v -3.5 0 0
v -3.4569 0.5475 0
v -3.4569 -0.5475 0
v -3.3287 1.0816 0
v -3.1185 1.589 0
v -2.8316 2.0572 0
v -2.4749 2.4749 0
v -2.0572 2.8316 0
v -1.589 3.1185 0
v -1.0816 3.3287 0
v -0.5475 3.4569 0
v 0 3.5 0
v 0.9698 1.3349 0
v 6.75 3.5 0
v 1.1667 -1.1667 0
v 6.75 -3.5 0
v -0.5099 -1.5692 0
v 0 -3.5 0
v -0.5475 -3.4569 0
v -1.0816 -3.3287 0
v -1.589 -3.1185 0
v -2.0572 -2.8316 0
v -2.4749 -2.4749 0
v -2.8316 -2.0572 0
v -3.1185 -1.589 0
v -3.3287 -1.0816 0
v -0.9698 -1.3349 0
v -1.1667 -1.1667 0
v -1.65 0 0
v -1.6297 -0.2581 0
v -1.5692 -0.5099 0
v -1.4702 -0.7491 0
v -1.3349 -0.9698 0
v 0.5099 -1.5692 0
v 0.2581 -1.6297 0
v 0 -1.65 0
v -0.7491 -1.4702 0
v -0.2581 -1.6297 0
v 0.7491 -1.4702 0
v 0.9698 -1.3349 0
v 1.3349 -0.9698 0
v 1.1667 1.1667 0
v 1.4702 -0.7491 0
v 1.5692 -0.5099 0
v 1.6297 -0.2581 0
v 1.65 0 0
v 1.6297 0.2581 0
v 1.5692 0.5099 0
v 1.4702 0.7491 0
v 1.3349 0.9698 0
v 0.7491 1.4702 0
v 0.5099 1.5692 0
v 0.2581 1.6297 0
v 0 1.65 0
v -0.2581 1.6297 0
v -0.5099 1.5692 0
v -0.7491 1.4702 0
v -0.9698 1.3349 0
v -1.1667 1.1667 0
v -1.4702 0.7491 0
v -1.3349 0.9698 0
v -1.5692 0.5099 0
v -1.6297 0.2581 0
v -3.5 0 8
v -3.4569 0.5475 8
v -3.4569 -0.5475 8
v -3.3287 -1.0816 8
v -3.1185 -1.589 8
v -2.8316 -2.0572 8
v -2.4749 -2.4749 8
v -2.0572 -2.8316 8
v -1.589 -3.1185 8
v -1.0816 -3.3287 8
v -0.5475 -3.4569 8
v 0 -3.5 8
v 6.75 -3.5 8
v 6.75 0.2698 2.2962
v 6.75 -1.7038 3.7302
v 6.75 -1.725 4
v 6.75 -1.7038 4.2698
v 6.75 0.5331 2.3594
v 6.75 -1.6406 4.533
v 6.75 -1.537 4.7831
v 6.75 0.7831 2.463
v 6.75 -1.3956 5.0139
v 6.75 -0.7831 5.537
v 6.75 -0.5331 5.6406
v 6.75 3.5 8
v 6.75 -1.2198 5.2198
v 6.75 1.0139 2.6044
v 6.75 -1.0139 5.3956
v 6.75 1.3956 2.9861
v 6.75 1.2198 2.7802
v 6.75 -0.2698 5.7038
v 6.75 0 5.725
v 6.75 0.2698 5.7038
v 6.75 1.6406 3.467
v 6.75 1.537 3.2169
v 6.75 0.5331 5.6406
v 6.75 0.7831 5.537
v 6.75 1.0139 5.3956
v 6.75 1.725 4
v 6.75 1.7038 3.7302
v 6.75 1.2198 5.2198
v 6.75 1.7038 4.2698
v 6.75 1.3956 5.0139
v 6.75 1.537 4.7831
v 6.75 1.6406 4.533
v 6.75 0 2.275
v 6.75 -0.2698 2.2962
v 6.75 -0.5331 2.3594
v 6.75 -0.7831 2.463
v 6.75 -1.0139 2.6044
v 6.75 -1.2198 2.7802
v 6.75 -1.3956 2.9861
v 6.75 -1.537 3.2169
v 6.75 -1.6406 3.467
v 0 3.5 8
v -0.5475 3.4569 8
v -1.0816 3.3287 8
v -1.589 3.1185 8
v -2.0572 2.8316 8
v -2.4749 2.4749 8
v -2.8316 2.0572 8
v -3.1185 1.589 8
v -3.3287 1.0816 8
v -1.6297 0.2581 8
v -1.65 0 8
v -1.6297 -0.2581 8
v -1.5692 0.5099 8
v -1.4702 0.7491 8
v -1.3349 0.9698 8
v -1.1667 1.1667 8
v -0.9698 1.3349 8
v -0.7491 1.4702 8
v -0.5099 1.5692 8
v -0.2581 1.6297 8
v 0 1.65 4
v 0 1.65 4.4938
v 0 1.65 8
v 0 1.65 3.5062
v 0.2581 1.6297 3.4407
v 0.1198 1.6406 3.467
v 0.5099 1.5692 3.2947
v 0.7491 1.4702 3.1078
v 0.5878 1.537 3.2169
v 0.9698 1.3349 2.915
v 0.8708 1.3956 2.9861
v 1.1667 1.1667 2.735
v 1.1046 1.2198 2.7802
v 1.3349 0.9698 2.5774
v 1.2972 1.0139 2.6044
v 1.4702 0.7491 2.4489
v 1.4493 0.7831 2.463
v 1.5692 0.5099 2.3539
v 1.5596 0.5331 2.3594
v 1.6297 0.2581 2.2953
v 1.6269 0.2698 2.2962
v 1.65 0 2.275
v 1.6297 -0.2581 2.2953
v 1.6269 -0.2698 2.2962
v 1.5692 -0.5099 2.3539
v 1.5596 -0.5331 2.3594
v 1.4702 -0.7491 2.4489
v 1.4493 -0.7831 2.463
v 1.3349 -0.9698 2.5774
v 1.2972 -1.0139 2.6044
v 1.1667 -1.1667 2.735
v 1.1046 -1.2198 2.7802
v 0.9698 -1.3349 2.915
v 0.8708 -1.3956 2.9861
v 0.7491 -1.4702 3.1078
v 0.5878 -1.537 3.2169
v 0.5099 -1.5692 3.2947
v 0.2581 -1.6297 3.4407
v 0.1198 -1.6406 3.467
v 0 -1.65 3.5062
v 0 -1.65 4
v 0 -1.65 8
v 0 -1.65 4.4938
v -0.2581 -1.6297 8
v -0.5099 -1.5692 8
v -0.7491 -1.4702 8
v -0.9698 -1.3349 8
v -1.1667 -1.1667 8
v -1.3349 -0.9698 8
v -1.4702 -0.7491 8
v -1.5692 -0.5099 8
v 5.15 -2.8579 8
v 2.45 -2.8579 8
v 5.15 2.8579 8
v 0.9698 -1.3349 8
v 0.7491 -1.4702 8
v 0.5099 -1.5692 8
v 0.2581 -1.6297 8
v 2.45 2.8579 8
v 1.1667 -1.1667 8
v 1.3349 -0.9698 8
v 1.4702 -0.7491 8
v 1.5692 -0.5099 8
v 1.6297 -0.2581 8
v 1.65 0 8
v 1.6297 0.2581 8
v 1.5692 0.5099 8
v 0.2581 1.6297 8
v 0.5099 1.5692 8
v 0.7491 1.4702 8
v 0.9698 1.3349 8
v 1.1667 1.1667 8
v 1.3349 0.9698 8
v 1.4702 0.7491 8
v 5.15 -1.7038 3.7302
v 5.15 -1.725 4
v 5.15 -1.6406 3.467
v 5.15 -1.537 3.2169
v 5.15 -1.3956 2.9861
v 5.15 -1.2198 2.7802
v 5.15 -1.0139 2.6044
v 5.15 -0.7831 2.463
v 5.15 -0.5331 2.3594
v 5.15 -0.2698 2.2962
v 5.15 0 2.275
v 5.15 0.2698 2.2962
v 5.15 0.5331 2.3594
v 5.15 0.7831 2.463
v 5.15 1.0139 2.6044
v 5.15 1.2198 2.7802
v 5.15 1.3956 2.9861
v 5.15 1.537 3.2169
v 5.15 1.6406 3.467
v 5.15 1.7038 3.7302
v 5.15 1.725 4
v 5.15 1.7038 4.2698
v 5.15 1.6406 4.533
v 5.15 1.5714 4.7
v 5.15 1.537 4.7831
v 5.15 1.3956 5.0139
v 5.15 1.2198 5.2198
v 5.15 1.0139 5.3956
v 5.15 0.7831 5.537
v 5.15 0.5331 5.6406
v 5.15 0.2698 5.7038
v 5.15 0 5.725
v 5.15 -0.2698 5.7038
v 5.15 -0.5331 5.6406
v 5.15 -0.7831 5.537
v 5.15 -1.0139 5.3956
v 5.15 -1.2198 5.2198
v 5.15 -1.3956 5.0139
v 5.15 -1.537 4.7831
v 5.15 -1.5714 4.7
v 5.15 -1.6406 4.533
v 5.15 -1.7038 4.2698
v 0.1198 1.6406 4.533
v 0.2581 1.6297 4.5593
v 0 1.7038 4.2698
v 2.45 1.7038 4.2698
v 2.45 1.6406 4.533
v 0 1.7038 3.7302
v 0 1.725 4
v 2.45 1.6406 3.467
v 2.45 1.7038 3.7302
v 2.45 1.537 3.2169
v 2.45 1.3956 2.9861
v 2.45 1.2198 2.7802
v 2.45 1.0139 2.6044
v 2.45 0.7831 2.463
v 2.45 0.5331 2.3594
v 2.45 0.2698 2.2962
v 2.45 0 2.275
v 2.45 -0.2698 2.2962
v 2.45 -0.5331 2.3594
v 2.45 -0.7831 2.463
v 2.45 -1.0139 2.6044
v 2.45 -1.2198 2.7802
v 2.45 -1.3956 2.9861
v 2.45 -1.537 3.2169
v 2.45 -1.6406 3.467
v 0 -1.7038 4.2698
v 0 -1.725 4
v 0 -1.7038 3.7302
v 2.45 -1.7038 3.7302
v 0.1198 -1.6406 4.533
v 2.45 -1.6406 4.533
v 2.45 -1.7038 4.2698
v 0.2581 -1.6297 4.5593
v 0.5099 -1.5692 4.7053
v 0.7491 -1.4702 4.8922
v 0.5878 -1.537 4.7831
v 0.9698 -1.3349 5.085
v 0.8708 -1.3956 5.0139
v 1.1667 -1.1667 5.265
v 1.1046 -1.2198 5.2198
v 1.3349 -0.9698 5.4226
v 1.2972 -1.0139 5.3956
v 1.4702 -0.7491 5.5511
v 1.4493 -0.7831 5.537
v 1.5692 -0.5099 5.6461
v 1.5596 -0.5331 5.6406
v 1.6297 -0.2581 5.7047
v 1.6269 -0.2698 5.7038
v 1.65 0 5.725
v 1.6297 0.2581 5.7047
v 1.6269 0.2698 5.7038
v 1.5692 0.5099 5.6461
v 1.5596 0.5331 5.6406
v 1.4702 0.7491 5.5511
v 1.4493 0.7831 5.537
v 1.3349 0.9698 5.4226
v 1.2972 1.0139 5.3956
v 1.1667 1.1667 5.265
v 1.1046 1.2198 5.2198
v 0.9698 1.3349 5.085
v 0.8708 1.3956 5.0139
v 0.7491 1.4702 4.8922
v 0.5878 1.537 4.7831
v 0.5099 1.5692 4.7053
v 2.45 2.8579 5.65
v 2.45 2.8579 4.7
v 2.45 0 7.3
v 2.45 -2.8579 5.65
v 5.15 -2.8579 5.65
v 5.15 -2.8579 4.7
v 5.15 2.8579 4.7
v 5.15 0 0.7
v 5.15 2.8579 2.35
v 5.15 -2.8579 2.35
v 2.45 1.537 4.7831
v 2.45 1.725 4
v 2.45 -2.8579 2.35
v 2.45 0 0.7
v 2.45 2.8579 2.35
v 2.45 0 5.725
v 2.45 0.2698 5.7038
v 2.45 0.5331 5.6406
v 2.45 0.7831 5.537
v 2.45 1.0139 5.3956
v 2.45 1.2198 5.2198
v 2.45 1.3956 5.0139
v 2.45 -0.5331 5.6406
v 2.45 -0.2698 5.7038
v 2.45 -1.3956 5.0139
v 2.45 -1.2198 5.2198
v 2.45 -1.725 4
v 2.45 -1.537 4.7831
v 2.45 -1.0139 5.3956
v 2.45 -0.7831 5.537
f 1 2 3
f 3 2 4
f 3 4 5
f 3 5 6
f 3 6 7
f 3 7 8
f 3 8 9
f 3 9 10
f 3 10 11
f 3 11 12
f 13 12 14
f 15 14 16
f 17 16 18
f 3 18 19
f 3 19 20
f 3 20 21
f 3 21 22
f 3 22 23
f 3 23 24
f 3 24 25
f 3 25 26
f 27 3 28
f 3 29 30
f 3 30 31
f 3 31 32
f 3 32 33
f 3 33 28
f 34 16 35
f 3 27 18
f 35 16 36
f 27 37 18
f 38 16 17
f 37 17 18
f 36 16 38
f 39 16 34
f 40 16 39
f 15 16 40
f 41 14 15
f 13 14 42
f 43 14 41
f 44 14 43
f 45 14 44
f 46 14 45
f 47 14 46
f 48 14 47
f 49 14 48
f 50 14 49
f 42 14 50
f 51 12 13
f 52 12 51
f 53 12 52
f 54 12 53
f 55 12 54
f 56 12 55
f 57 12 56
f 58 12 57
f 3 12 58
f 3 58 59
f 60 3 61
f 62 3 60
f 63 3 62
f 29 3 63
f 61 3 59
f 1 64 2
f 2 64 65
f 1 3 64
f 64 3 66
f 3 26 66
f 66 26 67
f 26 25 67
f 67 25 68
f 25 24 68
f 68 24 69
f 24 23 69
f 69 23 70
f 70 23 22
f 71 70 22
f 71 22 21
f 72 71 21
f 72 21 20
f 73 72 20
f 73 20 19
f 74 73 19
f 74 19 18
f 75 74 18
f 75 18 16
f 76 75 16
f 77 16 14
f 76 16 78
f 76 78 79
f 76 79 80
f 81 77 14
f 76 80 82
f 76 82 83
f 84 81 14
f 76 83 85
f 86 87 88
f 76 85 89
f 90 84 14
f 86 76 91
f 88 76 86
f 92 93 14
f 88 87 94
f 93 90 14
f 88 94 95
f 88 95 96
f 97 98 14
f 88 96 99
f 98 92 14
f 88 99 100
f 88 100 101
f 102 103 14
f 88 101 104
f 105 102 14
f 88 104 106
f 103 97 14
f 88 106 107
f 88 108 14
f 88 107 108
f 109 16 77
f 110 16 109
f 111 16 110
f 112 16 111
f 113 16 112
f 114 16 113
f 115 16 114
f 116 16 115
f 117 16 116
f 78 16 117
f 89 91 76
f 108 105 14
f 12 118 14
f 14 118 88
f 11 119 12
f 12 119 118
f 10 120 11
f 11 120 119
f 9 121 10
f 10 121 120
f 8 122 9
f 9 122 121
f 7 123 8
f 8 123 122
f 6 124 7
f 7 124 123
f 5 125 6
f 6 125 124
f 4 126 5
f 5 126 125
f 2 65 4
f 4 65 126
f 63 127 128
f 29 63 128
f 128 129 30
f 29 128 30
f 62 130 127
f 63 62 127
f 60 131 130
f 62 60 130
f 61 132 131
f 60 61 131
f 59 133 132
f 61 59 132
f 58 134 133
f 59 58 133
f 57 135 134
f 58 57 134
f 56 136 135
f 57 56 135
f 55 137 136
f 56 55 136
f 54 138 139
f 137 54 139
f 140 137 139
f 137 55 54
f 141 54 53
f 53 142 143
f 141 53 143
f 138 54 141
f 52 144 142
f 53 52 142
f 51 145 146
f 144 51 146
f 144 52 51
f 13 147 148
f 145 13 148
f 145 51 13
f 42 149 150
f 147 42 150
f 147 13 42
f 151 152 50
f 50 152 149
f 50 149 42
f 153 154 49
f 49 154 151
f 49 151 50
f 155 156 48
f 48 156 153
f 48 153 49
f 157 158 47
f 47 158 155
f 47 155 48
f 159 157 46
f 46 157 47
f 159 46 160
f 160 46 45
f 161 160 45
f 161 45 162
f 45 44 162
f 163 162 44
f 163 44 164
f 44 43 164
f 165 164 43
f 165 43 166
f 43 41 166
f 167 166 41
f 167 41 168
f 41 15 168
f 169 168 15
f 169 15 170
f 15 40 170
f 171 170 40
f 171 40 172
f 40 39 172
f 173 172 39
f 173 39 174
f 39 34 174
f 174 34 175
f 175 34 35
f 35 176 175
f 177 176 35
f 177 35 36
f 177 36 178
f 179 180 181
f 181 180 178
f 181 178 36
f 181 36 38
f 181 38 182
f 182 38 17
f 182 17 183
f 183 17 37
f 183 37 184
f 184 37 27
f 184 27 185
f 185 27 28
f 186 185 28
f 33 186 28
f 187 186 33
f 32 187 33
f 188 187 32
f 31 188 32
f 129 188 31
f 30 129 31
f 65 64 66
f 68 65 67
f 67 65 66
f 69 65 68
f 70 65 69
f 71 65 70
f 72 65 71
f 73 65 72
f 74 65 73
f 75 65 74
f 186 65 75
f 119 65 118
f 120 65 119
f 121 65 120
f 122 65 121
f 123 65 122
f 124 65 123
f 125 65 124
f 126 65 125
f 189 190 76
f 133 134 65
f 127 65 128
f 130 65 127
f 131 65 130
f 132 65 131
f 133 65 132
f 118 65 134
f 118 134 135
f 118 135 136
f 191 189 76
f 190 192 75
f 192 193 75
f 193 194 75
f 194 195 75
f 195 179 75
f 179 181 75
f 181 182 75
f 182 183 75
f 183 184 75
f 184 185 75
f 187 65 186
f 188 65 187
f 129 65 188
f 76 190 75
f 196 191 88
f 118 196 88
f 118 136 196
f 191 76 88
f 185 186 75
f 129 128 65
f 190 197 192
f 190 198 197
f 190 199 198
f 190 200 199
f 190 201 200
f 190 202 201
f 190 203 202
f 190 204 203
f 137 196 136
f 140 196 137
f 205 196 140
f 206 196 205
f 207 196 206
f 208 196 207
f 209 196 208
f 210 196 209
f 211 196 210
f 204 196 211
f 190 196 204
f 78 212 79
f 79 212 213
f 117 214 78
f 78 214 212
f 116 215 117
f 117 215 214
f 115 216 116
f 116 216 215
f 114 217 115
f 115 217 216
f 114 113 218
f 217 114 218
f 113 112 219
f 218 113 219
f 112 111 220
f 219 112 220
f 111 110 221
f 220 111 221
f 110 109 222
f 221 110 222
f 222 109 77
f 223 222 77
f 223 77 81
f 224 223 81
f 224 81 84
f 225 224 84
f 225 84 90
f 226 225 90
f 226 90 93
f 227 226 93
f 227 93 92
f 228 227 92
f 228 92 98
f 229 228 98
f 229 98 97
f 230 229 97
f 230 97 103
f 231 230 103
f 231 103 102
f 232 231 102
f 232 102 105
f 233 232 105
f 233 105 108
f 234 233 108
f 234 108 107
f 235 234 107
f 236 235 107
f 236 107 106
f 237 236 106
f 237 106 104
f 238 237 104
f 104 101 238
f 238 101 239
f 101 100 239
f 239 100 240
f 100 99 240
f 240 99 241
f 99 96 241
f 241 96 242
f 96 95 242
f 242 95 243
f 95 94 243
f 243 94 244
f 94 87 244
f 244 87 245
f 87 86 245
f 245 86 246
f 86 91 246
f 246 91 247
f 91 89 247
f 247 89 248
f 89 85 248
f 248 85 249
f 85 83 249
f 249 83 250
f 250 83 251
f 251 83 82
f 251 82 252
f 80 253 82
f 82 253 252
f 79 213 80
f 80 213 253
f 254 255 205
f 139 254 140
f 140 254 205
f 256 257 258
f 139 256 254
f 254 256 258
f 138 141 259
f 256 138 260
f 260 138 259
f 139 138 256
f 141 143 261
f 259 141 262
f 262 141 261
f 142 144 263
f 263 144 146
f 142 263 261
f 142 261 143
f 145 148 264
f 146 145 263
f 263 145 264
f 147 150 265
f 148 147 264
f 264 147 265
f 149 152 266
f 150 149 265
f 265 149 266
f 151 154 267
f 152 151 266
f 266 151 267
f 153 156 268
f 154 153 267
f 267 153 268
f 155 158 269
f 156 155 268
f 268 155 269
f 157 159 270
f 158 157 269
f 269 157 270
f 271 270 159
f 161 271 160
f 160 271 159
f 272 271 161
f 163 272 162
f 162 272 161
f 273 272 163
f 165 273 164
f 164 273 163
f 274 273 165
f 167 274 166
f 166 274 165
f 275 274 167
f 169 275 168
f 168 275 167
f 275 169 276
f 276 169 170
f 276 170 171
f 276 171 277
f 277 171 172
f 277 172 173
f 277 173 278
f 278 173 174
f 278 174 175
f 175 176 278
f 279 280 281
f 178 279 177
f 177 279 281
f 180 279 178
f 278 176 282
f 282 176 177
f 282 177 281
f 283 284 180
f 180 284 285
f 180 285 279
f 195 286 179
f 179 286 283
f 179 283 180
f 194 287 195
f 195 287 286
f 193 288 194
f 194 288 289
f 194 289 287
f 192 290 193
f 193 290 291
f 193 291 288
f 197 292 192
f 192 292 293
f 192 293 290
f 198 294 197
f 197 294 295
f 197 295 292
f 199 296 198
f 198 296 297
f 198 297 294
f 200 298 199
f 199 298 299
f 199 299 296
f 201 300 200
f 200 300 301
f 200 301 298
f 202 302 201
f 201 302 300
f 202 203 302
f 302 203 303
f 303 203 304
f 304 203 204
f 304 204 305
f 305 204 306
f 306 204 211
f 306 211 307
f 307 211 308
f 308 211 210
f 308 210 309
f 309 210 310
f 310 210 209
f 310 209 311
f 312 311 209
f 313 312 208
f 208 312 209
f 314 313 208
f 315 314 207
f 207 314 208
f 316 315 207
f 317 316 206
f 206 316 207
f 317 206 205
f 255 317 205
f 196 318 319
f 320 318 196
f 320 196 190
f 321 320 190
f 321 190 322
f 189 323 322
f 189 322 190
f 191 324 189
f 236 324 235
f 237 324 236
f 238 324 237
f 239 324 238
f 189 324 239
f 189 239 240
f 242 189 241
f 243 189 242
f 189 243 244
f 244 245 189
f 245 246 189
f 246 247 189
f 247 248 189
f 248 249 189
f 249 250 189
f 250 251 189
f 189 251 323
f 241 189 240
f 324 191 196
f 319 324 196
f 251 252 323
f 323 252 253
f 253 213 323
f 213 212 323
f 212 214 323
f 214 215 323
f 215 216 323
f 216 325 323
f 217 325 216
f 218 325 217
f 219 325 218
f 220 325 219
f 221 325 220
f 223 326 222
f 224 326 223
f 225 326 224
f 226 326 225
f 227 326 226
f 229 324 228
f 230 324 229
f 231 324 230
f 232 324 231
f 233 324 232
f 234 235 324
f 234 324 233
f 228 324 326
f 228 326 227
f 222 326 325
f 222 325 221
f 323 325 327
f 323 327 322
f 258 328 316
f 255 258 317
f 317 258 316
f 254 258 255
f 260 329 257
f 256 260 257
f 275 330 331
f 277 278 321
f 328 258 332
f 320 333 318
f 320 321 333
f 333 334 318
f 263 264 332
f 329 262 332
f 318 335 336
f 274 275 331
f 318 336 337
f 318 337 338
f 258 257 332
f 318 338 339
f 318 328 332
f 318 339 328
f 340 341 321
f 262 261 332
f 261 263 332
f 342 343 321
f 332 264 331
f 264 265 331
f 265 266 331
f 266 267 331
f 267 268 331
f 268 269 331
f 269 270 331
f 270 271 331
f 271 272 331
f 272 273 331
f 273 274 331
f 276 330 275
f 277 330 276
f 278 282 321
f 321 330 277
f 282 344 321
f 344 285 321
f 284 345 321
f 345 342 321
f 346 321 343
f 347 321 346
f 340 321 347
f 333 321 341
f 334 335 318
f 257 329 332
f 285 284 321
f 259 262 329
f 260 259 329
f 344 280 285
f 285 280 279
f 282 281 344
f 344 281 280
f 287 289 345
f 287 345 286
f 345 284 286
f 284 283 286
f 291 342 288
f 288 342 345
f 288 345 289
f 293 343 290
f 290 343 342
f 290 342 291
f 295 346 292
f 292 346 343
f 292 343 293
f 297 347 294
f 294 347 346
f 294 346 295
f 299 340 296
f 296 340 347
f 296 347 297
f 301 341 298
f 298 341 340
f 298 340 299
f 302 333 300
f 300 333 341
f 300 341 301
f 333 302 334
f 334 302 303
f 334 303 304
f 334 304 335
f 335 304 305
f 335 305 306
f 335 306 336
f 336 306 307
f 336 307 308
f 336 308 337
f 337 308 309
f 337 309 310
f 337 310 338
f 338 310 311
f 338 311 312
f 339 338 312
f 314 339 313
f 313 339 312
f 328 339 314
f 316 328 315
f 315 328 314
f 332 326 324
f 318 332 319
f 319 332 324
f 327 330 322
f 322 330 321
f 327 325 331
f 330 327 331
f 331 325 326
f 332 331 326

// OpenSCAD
// file: configuration.scad
// Increase this if your slicer or printer make holes too tight.
extra_radius = 0.1;

// OD = outside diameter, corner to corner.
m3_nut_od = 6.1;
m3_nut_radius = m3_nut_od/2 + 0.2 + extra_radius;
m3_washer_radius = 3.5 + extra_radius;

// Major diameter of metric 3mm thread.
m3_major = 2.85;
m3_radius = m3_major/2 + extra_radius;
m3_wide_radius = m3_major/2 + extra_radius + 0.2;

// NEMA17 stepper motors.
motor_shaft_diameter = 5;
motor_shaft_radius = motor_shaft_diameter/2 + extra_radius;

// Frame brackets. M3x8mm screws work best with 3.6 mm brackets.
thickness = 3.6;

// OpenBeam or Misumi. Currently only 15x15 mm, but there is a plan
// to make models more parametric and allow 20x20 mm in the future.
extrusion = 15;

// Placement for the NEMA17 stepper motors.
motor_offset = 44;
motor_length = 47;

probe_tunnel_radius = 1.25 + extra_radius;
probe_excentricity = 5;
// main file
include <configuration.scad>;

d_probe = 3.1 + 2*extra_radius; // probe diameter (mm)
d_clamp = 7;                    // outside diameter of the clamp (mm)
h_clamp = 8;                    // clamp heigth (mm)
d_nut = 6.4 + 2*extra_radius;   // hex nut diameter, M3 = 6.1 (mm)
h_nut = 2.5 + 2*extra_radius;   // hex thickness (mm)
delta_nut = 0.8;                // slight nut shift toward zprobe and space on the opposite side (mm)
$fn = 40;

difference() {
  union() {
    cylinder(r=d_clamp/2, h=h_clamp);
    translate([0, -d_clamp/2, 0]) cube([d_probe/2+h_nut+3*delta_nut, d_clamp, h_clamp]);
  };
  cylinder(r=d_probe/2, h=h_clamp);
  translate([0, 0, h_clamp/2]) rotate(a=90, v=[0,1,0]) cylinder(r=m3_wide_radius, h=2*d_clamp);

  translate([d_probe/2+delta_nut, 0, h_clamp/2]) rotate(a=90, v=[0,1,0]) cylinder(r=d_nut/2, h=h_nut, $fn=6);
  translate([d_probe/2+delta_nut, -d_nut*cos(30)/2, h_clamp-d_nut/2]) cube([h_nut, d_nut*cos(30), d_nut]);
};
